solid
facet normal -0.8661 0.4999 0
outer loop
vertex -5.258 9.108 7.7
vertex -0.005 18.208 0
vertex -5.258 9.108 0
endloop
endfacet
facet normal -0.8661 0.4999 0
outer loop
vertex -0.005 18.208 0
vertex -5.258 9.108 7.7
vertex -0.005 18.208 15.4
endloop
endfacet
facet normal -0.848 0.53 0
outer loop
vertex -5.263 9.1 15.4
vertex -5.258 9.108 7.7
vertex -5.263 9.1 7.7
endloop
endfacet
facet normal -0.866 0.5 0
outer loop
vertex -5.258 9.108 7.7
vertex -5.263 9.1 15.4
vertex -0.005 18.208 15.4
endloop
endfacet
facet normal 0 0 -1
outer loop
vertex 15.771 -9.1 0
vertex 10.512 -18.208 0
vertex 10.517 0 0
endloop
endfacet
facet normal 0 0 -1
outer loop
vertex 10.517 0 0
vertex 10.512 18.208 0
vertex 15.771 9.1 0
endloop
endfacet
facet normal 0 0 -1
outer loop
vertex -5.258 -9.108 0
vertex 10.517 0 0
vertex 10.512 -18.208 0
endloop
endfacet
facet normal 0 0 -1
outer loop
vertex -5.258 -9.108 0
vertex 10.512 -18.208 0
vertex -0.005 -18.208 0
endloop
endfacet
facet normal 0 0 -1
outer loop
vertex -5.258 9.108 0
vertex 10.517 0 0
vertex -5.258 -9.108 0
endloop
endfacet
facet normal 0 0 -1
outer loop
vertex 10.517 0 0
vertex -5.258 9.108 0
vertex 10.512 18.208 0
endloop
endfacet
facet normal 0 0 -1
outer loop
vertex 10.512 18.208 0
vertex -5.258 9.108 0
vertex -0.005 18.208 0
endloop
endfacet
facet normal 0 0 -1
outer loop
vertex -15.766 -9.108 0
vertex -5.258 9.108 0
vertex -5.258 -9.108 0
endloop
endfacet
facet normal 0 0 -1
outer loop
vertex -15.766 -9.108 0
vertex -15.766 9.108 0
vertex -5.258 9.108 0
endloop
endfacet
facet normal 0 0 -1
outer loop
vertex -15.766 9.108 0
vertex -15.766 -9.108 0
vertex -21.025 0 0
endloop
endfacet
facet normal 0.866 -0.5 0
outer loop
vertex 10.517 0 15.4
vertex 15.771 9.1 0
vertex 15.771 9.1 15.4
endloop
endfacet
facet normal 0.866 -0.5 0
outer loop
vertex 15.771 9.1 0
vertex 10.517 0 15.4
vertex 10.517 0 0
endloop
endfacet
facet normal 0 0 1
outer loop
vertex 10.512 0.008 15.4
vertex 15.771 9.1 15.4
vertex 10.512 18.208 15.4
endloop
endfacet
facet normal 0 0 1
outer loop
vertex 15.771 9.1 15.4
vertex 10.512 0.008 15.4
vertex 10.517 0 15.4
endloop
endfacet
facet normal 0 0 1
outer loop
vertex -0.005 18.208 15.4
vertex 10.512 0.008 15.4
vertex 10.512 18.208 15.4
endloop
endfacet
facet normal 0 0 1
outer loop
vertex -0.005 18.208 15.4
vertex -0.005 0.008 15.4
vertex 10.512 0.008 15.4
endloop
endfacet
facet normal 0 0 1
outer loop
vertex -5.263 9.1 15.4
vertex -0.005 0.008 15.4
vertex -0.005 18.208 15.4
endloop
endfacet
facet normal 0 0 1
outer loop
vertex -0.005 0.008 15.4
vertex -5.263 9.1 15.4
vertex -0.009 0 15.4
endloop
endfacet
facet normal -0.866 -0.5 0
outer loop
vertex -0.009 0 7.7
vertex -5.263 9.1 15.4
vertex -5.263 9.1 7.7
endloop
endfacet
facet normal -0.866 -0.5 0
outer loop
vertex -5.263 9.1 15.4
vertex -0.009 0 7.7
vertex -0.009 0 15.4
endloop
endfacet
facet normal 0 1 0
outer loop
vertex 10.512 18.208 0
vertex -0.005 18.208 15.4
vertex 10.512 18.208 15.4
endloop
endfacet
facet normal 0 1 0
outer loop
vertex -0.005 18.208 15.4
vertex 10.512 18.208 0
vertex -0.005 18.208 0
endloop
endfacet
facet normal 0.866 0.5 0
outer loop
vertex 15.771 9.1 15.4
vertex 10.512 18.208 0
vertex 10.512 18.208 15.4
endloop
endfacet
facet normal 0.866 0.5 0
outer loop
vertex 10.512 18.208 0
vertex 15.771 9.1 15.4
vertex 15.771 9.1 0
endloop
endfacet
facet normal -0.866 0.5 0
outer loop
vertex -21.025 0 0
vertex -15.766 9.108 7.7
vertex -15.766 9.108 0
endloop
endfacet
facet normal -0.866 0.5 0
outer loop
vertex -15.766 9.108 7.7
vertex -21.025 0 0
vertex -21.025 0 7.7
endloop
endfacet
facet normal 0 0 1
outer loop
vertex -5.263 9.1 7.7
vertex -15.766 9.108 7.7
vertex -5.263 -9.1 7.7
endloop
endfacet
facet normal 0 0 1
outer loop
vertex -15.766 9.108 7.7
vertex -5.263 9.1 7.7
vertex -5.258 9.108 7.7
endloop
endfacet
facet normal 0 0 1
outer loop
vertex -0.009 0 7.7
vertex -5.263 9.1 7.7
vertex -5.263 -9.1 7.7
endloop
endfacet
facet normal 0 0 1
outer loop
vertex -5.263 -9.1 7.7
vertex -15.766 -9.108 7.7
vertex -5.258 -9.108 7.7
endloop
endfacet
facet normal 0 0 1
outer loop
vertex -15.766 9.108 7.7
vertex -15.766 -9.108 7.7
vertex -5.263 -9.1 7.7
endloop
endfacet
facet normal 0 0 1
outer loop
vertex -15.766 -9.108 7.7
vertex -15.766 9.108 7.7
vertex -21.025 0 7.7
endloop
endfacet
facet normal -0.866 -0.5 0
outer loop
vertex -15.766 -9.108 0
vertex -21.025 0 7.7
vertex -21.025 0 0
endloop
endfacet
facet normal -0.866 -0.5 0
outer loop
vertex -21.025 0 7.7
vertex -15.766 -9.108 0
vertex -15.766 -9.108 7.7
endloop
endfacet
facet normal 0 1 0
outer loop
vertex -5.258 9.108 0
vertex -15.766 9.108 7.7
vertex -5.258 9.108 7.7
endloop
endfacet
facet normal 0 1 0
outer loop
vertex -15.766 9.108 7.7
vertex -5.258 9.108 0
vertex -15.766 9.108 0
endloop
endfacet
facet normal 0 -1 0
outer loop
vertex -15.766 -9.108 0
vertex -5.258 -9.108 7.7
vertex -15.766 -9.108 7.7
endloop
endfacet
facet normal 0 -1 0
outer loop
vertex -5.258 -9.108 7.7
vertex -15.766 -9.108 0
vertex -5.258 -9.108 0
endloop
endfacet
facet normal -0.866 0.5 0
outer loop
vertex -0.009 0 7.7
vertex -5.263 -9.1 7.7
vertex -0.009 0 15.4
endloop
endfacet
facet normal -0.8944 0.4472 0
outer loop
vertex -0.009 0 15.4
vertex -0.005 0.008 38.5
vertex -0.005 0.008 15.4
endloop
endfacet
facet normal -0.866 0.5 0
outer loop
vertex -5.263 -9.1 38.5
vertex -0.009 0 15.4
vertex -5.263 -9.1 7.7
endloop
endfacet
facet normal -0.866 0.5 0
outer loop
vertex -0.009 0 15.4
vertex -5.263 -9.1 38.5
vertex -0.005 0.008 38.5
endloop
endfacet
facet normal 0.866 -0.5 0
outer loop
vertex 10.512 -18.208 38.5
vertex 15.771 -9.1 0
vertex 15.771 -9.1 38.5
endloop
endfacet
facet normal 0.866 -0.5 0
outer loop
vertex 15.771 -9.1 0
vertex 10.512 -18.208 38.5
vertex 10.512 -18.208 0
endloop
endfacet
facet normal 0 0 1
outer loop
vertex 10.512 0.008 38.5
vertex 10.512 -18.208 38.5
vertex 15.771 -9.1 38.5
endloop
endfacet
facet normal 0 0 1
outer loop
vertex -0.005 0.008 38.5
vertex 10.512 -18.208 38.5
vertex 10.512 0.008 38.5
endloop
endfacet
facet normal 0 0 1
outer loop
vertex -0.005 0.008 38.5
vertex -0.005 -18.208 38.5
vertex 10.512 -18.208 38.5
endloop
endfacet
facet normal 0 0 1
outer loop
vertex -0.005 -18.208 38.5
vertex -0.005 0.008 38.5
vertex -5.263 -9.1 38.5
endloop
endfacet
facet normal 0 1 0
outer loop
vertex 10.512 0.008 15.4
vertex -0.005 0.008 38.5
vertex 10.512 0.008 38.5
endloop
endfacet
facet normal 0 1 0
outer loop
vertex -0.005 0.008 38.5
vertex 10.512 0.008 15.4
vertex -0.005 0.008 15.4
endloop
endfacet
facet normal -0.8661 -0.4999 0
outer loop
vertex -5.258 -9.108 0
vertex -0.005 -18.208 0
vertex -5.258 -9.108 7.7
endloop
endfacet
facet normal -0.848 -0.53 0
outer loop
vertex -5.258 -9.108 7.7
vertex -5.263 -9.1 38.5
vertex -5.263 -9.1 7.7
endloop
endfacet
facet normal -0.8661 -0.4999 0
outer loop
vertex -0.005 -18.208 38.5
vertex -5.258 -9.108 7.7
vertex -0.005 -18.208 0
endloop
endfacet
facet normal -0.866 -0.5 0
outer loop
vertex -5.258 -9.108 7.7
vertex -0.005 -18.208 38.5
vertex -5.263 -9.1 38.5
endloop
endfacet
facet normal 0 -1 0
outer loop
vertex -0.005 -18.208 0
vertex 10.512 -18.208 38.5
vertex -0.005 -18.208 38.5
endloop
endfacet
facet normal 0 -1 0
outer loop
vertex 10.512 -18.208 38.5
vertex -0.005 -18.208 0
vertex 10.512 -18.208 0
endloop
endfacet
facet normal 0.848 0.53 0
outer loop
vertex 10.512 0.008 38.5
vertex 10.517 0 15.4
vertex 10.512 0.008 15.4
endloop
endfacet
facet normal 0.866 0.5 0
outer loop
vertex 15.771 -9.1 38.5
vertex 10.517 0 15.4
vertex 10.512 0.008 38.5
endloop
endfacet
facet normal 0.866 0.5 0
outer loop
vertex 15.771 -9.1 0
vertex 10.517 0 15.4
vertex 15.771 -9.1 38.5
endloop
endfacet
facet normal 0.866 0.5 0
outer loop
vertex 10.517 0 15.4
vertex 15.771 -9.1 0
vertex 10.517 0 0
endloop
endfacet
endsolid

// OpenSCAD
// file: dimensions.scad
measureX = 9.10; // 92/2/2/sqrt(19)*sqrt(3)
measureY = 9.10; 
measureZ = 7.7; // 54/7 is about 7.7

halfSide = 1*tan(30);
h1 = 1;
dd = 0.001;
// main file
include <dimensions.scad>

hh = [2,1,5];

scale([measureX,measureY,measureZ])  union() {
    translate([halfSide,1,0]) 
    linear_extrude(height = hh[0]*h1, center = false)
    circle(2*halfSide + dd,$fn=6);
    
    translate([-2*halfSide,0,0]) 
    linear_extrude(height = hh[1]*h1, center = false)
    circle(2*halfSide + dd,$fn=6);
    
    translate([halfSide,-1,0]) 
    linear_extrude(height = hh[2]*h1, center = false)
    circle(2*halfSide + dd,$fn=6);
}
